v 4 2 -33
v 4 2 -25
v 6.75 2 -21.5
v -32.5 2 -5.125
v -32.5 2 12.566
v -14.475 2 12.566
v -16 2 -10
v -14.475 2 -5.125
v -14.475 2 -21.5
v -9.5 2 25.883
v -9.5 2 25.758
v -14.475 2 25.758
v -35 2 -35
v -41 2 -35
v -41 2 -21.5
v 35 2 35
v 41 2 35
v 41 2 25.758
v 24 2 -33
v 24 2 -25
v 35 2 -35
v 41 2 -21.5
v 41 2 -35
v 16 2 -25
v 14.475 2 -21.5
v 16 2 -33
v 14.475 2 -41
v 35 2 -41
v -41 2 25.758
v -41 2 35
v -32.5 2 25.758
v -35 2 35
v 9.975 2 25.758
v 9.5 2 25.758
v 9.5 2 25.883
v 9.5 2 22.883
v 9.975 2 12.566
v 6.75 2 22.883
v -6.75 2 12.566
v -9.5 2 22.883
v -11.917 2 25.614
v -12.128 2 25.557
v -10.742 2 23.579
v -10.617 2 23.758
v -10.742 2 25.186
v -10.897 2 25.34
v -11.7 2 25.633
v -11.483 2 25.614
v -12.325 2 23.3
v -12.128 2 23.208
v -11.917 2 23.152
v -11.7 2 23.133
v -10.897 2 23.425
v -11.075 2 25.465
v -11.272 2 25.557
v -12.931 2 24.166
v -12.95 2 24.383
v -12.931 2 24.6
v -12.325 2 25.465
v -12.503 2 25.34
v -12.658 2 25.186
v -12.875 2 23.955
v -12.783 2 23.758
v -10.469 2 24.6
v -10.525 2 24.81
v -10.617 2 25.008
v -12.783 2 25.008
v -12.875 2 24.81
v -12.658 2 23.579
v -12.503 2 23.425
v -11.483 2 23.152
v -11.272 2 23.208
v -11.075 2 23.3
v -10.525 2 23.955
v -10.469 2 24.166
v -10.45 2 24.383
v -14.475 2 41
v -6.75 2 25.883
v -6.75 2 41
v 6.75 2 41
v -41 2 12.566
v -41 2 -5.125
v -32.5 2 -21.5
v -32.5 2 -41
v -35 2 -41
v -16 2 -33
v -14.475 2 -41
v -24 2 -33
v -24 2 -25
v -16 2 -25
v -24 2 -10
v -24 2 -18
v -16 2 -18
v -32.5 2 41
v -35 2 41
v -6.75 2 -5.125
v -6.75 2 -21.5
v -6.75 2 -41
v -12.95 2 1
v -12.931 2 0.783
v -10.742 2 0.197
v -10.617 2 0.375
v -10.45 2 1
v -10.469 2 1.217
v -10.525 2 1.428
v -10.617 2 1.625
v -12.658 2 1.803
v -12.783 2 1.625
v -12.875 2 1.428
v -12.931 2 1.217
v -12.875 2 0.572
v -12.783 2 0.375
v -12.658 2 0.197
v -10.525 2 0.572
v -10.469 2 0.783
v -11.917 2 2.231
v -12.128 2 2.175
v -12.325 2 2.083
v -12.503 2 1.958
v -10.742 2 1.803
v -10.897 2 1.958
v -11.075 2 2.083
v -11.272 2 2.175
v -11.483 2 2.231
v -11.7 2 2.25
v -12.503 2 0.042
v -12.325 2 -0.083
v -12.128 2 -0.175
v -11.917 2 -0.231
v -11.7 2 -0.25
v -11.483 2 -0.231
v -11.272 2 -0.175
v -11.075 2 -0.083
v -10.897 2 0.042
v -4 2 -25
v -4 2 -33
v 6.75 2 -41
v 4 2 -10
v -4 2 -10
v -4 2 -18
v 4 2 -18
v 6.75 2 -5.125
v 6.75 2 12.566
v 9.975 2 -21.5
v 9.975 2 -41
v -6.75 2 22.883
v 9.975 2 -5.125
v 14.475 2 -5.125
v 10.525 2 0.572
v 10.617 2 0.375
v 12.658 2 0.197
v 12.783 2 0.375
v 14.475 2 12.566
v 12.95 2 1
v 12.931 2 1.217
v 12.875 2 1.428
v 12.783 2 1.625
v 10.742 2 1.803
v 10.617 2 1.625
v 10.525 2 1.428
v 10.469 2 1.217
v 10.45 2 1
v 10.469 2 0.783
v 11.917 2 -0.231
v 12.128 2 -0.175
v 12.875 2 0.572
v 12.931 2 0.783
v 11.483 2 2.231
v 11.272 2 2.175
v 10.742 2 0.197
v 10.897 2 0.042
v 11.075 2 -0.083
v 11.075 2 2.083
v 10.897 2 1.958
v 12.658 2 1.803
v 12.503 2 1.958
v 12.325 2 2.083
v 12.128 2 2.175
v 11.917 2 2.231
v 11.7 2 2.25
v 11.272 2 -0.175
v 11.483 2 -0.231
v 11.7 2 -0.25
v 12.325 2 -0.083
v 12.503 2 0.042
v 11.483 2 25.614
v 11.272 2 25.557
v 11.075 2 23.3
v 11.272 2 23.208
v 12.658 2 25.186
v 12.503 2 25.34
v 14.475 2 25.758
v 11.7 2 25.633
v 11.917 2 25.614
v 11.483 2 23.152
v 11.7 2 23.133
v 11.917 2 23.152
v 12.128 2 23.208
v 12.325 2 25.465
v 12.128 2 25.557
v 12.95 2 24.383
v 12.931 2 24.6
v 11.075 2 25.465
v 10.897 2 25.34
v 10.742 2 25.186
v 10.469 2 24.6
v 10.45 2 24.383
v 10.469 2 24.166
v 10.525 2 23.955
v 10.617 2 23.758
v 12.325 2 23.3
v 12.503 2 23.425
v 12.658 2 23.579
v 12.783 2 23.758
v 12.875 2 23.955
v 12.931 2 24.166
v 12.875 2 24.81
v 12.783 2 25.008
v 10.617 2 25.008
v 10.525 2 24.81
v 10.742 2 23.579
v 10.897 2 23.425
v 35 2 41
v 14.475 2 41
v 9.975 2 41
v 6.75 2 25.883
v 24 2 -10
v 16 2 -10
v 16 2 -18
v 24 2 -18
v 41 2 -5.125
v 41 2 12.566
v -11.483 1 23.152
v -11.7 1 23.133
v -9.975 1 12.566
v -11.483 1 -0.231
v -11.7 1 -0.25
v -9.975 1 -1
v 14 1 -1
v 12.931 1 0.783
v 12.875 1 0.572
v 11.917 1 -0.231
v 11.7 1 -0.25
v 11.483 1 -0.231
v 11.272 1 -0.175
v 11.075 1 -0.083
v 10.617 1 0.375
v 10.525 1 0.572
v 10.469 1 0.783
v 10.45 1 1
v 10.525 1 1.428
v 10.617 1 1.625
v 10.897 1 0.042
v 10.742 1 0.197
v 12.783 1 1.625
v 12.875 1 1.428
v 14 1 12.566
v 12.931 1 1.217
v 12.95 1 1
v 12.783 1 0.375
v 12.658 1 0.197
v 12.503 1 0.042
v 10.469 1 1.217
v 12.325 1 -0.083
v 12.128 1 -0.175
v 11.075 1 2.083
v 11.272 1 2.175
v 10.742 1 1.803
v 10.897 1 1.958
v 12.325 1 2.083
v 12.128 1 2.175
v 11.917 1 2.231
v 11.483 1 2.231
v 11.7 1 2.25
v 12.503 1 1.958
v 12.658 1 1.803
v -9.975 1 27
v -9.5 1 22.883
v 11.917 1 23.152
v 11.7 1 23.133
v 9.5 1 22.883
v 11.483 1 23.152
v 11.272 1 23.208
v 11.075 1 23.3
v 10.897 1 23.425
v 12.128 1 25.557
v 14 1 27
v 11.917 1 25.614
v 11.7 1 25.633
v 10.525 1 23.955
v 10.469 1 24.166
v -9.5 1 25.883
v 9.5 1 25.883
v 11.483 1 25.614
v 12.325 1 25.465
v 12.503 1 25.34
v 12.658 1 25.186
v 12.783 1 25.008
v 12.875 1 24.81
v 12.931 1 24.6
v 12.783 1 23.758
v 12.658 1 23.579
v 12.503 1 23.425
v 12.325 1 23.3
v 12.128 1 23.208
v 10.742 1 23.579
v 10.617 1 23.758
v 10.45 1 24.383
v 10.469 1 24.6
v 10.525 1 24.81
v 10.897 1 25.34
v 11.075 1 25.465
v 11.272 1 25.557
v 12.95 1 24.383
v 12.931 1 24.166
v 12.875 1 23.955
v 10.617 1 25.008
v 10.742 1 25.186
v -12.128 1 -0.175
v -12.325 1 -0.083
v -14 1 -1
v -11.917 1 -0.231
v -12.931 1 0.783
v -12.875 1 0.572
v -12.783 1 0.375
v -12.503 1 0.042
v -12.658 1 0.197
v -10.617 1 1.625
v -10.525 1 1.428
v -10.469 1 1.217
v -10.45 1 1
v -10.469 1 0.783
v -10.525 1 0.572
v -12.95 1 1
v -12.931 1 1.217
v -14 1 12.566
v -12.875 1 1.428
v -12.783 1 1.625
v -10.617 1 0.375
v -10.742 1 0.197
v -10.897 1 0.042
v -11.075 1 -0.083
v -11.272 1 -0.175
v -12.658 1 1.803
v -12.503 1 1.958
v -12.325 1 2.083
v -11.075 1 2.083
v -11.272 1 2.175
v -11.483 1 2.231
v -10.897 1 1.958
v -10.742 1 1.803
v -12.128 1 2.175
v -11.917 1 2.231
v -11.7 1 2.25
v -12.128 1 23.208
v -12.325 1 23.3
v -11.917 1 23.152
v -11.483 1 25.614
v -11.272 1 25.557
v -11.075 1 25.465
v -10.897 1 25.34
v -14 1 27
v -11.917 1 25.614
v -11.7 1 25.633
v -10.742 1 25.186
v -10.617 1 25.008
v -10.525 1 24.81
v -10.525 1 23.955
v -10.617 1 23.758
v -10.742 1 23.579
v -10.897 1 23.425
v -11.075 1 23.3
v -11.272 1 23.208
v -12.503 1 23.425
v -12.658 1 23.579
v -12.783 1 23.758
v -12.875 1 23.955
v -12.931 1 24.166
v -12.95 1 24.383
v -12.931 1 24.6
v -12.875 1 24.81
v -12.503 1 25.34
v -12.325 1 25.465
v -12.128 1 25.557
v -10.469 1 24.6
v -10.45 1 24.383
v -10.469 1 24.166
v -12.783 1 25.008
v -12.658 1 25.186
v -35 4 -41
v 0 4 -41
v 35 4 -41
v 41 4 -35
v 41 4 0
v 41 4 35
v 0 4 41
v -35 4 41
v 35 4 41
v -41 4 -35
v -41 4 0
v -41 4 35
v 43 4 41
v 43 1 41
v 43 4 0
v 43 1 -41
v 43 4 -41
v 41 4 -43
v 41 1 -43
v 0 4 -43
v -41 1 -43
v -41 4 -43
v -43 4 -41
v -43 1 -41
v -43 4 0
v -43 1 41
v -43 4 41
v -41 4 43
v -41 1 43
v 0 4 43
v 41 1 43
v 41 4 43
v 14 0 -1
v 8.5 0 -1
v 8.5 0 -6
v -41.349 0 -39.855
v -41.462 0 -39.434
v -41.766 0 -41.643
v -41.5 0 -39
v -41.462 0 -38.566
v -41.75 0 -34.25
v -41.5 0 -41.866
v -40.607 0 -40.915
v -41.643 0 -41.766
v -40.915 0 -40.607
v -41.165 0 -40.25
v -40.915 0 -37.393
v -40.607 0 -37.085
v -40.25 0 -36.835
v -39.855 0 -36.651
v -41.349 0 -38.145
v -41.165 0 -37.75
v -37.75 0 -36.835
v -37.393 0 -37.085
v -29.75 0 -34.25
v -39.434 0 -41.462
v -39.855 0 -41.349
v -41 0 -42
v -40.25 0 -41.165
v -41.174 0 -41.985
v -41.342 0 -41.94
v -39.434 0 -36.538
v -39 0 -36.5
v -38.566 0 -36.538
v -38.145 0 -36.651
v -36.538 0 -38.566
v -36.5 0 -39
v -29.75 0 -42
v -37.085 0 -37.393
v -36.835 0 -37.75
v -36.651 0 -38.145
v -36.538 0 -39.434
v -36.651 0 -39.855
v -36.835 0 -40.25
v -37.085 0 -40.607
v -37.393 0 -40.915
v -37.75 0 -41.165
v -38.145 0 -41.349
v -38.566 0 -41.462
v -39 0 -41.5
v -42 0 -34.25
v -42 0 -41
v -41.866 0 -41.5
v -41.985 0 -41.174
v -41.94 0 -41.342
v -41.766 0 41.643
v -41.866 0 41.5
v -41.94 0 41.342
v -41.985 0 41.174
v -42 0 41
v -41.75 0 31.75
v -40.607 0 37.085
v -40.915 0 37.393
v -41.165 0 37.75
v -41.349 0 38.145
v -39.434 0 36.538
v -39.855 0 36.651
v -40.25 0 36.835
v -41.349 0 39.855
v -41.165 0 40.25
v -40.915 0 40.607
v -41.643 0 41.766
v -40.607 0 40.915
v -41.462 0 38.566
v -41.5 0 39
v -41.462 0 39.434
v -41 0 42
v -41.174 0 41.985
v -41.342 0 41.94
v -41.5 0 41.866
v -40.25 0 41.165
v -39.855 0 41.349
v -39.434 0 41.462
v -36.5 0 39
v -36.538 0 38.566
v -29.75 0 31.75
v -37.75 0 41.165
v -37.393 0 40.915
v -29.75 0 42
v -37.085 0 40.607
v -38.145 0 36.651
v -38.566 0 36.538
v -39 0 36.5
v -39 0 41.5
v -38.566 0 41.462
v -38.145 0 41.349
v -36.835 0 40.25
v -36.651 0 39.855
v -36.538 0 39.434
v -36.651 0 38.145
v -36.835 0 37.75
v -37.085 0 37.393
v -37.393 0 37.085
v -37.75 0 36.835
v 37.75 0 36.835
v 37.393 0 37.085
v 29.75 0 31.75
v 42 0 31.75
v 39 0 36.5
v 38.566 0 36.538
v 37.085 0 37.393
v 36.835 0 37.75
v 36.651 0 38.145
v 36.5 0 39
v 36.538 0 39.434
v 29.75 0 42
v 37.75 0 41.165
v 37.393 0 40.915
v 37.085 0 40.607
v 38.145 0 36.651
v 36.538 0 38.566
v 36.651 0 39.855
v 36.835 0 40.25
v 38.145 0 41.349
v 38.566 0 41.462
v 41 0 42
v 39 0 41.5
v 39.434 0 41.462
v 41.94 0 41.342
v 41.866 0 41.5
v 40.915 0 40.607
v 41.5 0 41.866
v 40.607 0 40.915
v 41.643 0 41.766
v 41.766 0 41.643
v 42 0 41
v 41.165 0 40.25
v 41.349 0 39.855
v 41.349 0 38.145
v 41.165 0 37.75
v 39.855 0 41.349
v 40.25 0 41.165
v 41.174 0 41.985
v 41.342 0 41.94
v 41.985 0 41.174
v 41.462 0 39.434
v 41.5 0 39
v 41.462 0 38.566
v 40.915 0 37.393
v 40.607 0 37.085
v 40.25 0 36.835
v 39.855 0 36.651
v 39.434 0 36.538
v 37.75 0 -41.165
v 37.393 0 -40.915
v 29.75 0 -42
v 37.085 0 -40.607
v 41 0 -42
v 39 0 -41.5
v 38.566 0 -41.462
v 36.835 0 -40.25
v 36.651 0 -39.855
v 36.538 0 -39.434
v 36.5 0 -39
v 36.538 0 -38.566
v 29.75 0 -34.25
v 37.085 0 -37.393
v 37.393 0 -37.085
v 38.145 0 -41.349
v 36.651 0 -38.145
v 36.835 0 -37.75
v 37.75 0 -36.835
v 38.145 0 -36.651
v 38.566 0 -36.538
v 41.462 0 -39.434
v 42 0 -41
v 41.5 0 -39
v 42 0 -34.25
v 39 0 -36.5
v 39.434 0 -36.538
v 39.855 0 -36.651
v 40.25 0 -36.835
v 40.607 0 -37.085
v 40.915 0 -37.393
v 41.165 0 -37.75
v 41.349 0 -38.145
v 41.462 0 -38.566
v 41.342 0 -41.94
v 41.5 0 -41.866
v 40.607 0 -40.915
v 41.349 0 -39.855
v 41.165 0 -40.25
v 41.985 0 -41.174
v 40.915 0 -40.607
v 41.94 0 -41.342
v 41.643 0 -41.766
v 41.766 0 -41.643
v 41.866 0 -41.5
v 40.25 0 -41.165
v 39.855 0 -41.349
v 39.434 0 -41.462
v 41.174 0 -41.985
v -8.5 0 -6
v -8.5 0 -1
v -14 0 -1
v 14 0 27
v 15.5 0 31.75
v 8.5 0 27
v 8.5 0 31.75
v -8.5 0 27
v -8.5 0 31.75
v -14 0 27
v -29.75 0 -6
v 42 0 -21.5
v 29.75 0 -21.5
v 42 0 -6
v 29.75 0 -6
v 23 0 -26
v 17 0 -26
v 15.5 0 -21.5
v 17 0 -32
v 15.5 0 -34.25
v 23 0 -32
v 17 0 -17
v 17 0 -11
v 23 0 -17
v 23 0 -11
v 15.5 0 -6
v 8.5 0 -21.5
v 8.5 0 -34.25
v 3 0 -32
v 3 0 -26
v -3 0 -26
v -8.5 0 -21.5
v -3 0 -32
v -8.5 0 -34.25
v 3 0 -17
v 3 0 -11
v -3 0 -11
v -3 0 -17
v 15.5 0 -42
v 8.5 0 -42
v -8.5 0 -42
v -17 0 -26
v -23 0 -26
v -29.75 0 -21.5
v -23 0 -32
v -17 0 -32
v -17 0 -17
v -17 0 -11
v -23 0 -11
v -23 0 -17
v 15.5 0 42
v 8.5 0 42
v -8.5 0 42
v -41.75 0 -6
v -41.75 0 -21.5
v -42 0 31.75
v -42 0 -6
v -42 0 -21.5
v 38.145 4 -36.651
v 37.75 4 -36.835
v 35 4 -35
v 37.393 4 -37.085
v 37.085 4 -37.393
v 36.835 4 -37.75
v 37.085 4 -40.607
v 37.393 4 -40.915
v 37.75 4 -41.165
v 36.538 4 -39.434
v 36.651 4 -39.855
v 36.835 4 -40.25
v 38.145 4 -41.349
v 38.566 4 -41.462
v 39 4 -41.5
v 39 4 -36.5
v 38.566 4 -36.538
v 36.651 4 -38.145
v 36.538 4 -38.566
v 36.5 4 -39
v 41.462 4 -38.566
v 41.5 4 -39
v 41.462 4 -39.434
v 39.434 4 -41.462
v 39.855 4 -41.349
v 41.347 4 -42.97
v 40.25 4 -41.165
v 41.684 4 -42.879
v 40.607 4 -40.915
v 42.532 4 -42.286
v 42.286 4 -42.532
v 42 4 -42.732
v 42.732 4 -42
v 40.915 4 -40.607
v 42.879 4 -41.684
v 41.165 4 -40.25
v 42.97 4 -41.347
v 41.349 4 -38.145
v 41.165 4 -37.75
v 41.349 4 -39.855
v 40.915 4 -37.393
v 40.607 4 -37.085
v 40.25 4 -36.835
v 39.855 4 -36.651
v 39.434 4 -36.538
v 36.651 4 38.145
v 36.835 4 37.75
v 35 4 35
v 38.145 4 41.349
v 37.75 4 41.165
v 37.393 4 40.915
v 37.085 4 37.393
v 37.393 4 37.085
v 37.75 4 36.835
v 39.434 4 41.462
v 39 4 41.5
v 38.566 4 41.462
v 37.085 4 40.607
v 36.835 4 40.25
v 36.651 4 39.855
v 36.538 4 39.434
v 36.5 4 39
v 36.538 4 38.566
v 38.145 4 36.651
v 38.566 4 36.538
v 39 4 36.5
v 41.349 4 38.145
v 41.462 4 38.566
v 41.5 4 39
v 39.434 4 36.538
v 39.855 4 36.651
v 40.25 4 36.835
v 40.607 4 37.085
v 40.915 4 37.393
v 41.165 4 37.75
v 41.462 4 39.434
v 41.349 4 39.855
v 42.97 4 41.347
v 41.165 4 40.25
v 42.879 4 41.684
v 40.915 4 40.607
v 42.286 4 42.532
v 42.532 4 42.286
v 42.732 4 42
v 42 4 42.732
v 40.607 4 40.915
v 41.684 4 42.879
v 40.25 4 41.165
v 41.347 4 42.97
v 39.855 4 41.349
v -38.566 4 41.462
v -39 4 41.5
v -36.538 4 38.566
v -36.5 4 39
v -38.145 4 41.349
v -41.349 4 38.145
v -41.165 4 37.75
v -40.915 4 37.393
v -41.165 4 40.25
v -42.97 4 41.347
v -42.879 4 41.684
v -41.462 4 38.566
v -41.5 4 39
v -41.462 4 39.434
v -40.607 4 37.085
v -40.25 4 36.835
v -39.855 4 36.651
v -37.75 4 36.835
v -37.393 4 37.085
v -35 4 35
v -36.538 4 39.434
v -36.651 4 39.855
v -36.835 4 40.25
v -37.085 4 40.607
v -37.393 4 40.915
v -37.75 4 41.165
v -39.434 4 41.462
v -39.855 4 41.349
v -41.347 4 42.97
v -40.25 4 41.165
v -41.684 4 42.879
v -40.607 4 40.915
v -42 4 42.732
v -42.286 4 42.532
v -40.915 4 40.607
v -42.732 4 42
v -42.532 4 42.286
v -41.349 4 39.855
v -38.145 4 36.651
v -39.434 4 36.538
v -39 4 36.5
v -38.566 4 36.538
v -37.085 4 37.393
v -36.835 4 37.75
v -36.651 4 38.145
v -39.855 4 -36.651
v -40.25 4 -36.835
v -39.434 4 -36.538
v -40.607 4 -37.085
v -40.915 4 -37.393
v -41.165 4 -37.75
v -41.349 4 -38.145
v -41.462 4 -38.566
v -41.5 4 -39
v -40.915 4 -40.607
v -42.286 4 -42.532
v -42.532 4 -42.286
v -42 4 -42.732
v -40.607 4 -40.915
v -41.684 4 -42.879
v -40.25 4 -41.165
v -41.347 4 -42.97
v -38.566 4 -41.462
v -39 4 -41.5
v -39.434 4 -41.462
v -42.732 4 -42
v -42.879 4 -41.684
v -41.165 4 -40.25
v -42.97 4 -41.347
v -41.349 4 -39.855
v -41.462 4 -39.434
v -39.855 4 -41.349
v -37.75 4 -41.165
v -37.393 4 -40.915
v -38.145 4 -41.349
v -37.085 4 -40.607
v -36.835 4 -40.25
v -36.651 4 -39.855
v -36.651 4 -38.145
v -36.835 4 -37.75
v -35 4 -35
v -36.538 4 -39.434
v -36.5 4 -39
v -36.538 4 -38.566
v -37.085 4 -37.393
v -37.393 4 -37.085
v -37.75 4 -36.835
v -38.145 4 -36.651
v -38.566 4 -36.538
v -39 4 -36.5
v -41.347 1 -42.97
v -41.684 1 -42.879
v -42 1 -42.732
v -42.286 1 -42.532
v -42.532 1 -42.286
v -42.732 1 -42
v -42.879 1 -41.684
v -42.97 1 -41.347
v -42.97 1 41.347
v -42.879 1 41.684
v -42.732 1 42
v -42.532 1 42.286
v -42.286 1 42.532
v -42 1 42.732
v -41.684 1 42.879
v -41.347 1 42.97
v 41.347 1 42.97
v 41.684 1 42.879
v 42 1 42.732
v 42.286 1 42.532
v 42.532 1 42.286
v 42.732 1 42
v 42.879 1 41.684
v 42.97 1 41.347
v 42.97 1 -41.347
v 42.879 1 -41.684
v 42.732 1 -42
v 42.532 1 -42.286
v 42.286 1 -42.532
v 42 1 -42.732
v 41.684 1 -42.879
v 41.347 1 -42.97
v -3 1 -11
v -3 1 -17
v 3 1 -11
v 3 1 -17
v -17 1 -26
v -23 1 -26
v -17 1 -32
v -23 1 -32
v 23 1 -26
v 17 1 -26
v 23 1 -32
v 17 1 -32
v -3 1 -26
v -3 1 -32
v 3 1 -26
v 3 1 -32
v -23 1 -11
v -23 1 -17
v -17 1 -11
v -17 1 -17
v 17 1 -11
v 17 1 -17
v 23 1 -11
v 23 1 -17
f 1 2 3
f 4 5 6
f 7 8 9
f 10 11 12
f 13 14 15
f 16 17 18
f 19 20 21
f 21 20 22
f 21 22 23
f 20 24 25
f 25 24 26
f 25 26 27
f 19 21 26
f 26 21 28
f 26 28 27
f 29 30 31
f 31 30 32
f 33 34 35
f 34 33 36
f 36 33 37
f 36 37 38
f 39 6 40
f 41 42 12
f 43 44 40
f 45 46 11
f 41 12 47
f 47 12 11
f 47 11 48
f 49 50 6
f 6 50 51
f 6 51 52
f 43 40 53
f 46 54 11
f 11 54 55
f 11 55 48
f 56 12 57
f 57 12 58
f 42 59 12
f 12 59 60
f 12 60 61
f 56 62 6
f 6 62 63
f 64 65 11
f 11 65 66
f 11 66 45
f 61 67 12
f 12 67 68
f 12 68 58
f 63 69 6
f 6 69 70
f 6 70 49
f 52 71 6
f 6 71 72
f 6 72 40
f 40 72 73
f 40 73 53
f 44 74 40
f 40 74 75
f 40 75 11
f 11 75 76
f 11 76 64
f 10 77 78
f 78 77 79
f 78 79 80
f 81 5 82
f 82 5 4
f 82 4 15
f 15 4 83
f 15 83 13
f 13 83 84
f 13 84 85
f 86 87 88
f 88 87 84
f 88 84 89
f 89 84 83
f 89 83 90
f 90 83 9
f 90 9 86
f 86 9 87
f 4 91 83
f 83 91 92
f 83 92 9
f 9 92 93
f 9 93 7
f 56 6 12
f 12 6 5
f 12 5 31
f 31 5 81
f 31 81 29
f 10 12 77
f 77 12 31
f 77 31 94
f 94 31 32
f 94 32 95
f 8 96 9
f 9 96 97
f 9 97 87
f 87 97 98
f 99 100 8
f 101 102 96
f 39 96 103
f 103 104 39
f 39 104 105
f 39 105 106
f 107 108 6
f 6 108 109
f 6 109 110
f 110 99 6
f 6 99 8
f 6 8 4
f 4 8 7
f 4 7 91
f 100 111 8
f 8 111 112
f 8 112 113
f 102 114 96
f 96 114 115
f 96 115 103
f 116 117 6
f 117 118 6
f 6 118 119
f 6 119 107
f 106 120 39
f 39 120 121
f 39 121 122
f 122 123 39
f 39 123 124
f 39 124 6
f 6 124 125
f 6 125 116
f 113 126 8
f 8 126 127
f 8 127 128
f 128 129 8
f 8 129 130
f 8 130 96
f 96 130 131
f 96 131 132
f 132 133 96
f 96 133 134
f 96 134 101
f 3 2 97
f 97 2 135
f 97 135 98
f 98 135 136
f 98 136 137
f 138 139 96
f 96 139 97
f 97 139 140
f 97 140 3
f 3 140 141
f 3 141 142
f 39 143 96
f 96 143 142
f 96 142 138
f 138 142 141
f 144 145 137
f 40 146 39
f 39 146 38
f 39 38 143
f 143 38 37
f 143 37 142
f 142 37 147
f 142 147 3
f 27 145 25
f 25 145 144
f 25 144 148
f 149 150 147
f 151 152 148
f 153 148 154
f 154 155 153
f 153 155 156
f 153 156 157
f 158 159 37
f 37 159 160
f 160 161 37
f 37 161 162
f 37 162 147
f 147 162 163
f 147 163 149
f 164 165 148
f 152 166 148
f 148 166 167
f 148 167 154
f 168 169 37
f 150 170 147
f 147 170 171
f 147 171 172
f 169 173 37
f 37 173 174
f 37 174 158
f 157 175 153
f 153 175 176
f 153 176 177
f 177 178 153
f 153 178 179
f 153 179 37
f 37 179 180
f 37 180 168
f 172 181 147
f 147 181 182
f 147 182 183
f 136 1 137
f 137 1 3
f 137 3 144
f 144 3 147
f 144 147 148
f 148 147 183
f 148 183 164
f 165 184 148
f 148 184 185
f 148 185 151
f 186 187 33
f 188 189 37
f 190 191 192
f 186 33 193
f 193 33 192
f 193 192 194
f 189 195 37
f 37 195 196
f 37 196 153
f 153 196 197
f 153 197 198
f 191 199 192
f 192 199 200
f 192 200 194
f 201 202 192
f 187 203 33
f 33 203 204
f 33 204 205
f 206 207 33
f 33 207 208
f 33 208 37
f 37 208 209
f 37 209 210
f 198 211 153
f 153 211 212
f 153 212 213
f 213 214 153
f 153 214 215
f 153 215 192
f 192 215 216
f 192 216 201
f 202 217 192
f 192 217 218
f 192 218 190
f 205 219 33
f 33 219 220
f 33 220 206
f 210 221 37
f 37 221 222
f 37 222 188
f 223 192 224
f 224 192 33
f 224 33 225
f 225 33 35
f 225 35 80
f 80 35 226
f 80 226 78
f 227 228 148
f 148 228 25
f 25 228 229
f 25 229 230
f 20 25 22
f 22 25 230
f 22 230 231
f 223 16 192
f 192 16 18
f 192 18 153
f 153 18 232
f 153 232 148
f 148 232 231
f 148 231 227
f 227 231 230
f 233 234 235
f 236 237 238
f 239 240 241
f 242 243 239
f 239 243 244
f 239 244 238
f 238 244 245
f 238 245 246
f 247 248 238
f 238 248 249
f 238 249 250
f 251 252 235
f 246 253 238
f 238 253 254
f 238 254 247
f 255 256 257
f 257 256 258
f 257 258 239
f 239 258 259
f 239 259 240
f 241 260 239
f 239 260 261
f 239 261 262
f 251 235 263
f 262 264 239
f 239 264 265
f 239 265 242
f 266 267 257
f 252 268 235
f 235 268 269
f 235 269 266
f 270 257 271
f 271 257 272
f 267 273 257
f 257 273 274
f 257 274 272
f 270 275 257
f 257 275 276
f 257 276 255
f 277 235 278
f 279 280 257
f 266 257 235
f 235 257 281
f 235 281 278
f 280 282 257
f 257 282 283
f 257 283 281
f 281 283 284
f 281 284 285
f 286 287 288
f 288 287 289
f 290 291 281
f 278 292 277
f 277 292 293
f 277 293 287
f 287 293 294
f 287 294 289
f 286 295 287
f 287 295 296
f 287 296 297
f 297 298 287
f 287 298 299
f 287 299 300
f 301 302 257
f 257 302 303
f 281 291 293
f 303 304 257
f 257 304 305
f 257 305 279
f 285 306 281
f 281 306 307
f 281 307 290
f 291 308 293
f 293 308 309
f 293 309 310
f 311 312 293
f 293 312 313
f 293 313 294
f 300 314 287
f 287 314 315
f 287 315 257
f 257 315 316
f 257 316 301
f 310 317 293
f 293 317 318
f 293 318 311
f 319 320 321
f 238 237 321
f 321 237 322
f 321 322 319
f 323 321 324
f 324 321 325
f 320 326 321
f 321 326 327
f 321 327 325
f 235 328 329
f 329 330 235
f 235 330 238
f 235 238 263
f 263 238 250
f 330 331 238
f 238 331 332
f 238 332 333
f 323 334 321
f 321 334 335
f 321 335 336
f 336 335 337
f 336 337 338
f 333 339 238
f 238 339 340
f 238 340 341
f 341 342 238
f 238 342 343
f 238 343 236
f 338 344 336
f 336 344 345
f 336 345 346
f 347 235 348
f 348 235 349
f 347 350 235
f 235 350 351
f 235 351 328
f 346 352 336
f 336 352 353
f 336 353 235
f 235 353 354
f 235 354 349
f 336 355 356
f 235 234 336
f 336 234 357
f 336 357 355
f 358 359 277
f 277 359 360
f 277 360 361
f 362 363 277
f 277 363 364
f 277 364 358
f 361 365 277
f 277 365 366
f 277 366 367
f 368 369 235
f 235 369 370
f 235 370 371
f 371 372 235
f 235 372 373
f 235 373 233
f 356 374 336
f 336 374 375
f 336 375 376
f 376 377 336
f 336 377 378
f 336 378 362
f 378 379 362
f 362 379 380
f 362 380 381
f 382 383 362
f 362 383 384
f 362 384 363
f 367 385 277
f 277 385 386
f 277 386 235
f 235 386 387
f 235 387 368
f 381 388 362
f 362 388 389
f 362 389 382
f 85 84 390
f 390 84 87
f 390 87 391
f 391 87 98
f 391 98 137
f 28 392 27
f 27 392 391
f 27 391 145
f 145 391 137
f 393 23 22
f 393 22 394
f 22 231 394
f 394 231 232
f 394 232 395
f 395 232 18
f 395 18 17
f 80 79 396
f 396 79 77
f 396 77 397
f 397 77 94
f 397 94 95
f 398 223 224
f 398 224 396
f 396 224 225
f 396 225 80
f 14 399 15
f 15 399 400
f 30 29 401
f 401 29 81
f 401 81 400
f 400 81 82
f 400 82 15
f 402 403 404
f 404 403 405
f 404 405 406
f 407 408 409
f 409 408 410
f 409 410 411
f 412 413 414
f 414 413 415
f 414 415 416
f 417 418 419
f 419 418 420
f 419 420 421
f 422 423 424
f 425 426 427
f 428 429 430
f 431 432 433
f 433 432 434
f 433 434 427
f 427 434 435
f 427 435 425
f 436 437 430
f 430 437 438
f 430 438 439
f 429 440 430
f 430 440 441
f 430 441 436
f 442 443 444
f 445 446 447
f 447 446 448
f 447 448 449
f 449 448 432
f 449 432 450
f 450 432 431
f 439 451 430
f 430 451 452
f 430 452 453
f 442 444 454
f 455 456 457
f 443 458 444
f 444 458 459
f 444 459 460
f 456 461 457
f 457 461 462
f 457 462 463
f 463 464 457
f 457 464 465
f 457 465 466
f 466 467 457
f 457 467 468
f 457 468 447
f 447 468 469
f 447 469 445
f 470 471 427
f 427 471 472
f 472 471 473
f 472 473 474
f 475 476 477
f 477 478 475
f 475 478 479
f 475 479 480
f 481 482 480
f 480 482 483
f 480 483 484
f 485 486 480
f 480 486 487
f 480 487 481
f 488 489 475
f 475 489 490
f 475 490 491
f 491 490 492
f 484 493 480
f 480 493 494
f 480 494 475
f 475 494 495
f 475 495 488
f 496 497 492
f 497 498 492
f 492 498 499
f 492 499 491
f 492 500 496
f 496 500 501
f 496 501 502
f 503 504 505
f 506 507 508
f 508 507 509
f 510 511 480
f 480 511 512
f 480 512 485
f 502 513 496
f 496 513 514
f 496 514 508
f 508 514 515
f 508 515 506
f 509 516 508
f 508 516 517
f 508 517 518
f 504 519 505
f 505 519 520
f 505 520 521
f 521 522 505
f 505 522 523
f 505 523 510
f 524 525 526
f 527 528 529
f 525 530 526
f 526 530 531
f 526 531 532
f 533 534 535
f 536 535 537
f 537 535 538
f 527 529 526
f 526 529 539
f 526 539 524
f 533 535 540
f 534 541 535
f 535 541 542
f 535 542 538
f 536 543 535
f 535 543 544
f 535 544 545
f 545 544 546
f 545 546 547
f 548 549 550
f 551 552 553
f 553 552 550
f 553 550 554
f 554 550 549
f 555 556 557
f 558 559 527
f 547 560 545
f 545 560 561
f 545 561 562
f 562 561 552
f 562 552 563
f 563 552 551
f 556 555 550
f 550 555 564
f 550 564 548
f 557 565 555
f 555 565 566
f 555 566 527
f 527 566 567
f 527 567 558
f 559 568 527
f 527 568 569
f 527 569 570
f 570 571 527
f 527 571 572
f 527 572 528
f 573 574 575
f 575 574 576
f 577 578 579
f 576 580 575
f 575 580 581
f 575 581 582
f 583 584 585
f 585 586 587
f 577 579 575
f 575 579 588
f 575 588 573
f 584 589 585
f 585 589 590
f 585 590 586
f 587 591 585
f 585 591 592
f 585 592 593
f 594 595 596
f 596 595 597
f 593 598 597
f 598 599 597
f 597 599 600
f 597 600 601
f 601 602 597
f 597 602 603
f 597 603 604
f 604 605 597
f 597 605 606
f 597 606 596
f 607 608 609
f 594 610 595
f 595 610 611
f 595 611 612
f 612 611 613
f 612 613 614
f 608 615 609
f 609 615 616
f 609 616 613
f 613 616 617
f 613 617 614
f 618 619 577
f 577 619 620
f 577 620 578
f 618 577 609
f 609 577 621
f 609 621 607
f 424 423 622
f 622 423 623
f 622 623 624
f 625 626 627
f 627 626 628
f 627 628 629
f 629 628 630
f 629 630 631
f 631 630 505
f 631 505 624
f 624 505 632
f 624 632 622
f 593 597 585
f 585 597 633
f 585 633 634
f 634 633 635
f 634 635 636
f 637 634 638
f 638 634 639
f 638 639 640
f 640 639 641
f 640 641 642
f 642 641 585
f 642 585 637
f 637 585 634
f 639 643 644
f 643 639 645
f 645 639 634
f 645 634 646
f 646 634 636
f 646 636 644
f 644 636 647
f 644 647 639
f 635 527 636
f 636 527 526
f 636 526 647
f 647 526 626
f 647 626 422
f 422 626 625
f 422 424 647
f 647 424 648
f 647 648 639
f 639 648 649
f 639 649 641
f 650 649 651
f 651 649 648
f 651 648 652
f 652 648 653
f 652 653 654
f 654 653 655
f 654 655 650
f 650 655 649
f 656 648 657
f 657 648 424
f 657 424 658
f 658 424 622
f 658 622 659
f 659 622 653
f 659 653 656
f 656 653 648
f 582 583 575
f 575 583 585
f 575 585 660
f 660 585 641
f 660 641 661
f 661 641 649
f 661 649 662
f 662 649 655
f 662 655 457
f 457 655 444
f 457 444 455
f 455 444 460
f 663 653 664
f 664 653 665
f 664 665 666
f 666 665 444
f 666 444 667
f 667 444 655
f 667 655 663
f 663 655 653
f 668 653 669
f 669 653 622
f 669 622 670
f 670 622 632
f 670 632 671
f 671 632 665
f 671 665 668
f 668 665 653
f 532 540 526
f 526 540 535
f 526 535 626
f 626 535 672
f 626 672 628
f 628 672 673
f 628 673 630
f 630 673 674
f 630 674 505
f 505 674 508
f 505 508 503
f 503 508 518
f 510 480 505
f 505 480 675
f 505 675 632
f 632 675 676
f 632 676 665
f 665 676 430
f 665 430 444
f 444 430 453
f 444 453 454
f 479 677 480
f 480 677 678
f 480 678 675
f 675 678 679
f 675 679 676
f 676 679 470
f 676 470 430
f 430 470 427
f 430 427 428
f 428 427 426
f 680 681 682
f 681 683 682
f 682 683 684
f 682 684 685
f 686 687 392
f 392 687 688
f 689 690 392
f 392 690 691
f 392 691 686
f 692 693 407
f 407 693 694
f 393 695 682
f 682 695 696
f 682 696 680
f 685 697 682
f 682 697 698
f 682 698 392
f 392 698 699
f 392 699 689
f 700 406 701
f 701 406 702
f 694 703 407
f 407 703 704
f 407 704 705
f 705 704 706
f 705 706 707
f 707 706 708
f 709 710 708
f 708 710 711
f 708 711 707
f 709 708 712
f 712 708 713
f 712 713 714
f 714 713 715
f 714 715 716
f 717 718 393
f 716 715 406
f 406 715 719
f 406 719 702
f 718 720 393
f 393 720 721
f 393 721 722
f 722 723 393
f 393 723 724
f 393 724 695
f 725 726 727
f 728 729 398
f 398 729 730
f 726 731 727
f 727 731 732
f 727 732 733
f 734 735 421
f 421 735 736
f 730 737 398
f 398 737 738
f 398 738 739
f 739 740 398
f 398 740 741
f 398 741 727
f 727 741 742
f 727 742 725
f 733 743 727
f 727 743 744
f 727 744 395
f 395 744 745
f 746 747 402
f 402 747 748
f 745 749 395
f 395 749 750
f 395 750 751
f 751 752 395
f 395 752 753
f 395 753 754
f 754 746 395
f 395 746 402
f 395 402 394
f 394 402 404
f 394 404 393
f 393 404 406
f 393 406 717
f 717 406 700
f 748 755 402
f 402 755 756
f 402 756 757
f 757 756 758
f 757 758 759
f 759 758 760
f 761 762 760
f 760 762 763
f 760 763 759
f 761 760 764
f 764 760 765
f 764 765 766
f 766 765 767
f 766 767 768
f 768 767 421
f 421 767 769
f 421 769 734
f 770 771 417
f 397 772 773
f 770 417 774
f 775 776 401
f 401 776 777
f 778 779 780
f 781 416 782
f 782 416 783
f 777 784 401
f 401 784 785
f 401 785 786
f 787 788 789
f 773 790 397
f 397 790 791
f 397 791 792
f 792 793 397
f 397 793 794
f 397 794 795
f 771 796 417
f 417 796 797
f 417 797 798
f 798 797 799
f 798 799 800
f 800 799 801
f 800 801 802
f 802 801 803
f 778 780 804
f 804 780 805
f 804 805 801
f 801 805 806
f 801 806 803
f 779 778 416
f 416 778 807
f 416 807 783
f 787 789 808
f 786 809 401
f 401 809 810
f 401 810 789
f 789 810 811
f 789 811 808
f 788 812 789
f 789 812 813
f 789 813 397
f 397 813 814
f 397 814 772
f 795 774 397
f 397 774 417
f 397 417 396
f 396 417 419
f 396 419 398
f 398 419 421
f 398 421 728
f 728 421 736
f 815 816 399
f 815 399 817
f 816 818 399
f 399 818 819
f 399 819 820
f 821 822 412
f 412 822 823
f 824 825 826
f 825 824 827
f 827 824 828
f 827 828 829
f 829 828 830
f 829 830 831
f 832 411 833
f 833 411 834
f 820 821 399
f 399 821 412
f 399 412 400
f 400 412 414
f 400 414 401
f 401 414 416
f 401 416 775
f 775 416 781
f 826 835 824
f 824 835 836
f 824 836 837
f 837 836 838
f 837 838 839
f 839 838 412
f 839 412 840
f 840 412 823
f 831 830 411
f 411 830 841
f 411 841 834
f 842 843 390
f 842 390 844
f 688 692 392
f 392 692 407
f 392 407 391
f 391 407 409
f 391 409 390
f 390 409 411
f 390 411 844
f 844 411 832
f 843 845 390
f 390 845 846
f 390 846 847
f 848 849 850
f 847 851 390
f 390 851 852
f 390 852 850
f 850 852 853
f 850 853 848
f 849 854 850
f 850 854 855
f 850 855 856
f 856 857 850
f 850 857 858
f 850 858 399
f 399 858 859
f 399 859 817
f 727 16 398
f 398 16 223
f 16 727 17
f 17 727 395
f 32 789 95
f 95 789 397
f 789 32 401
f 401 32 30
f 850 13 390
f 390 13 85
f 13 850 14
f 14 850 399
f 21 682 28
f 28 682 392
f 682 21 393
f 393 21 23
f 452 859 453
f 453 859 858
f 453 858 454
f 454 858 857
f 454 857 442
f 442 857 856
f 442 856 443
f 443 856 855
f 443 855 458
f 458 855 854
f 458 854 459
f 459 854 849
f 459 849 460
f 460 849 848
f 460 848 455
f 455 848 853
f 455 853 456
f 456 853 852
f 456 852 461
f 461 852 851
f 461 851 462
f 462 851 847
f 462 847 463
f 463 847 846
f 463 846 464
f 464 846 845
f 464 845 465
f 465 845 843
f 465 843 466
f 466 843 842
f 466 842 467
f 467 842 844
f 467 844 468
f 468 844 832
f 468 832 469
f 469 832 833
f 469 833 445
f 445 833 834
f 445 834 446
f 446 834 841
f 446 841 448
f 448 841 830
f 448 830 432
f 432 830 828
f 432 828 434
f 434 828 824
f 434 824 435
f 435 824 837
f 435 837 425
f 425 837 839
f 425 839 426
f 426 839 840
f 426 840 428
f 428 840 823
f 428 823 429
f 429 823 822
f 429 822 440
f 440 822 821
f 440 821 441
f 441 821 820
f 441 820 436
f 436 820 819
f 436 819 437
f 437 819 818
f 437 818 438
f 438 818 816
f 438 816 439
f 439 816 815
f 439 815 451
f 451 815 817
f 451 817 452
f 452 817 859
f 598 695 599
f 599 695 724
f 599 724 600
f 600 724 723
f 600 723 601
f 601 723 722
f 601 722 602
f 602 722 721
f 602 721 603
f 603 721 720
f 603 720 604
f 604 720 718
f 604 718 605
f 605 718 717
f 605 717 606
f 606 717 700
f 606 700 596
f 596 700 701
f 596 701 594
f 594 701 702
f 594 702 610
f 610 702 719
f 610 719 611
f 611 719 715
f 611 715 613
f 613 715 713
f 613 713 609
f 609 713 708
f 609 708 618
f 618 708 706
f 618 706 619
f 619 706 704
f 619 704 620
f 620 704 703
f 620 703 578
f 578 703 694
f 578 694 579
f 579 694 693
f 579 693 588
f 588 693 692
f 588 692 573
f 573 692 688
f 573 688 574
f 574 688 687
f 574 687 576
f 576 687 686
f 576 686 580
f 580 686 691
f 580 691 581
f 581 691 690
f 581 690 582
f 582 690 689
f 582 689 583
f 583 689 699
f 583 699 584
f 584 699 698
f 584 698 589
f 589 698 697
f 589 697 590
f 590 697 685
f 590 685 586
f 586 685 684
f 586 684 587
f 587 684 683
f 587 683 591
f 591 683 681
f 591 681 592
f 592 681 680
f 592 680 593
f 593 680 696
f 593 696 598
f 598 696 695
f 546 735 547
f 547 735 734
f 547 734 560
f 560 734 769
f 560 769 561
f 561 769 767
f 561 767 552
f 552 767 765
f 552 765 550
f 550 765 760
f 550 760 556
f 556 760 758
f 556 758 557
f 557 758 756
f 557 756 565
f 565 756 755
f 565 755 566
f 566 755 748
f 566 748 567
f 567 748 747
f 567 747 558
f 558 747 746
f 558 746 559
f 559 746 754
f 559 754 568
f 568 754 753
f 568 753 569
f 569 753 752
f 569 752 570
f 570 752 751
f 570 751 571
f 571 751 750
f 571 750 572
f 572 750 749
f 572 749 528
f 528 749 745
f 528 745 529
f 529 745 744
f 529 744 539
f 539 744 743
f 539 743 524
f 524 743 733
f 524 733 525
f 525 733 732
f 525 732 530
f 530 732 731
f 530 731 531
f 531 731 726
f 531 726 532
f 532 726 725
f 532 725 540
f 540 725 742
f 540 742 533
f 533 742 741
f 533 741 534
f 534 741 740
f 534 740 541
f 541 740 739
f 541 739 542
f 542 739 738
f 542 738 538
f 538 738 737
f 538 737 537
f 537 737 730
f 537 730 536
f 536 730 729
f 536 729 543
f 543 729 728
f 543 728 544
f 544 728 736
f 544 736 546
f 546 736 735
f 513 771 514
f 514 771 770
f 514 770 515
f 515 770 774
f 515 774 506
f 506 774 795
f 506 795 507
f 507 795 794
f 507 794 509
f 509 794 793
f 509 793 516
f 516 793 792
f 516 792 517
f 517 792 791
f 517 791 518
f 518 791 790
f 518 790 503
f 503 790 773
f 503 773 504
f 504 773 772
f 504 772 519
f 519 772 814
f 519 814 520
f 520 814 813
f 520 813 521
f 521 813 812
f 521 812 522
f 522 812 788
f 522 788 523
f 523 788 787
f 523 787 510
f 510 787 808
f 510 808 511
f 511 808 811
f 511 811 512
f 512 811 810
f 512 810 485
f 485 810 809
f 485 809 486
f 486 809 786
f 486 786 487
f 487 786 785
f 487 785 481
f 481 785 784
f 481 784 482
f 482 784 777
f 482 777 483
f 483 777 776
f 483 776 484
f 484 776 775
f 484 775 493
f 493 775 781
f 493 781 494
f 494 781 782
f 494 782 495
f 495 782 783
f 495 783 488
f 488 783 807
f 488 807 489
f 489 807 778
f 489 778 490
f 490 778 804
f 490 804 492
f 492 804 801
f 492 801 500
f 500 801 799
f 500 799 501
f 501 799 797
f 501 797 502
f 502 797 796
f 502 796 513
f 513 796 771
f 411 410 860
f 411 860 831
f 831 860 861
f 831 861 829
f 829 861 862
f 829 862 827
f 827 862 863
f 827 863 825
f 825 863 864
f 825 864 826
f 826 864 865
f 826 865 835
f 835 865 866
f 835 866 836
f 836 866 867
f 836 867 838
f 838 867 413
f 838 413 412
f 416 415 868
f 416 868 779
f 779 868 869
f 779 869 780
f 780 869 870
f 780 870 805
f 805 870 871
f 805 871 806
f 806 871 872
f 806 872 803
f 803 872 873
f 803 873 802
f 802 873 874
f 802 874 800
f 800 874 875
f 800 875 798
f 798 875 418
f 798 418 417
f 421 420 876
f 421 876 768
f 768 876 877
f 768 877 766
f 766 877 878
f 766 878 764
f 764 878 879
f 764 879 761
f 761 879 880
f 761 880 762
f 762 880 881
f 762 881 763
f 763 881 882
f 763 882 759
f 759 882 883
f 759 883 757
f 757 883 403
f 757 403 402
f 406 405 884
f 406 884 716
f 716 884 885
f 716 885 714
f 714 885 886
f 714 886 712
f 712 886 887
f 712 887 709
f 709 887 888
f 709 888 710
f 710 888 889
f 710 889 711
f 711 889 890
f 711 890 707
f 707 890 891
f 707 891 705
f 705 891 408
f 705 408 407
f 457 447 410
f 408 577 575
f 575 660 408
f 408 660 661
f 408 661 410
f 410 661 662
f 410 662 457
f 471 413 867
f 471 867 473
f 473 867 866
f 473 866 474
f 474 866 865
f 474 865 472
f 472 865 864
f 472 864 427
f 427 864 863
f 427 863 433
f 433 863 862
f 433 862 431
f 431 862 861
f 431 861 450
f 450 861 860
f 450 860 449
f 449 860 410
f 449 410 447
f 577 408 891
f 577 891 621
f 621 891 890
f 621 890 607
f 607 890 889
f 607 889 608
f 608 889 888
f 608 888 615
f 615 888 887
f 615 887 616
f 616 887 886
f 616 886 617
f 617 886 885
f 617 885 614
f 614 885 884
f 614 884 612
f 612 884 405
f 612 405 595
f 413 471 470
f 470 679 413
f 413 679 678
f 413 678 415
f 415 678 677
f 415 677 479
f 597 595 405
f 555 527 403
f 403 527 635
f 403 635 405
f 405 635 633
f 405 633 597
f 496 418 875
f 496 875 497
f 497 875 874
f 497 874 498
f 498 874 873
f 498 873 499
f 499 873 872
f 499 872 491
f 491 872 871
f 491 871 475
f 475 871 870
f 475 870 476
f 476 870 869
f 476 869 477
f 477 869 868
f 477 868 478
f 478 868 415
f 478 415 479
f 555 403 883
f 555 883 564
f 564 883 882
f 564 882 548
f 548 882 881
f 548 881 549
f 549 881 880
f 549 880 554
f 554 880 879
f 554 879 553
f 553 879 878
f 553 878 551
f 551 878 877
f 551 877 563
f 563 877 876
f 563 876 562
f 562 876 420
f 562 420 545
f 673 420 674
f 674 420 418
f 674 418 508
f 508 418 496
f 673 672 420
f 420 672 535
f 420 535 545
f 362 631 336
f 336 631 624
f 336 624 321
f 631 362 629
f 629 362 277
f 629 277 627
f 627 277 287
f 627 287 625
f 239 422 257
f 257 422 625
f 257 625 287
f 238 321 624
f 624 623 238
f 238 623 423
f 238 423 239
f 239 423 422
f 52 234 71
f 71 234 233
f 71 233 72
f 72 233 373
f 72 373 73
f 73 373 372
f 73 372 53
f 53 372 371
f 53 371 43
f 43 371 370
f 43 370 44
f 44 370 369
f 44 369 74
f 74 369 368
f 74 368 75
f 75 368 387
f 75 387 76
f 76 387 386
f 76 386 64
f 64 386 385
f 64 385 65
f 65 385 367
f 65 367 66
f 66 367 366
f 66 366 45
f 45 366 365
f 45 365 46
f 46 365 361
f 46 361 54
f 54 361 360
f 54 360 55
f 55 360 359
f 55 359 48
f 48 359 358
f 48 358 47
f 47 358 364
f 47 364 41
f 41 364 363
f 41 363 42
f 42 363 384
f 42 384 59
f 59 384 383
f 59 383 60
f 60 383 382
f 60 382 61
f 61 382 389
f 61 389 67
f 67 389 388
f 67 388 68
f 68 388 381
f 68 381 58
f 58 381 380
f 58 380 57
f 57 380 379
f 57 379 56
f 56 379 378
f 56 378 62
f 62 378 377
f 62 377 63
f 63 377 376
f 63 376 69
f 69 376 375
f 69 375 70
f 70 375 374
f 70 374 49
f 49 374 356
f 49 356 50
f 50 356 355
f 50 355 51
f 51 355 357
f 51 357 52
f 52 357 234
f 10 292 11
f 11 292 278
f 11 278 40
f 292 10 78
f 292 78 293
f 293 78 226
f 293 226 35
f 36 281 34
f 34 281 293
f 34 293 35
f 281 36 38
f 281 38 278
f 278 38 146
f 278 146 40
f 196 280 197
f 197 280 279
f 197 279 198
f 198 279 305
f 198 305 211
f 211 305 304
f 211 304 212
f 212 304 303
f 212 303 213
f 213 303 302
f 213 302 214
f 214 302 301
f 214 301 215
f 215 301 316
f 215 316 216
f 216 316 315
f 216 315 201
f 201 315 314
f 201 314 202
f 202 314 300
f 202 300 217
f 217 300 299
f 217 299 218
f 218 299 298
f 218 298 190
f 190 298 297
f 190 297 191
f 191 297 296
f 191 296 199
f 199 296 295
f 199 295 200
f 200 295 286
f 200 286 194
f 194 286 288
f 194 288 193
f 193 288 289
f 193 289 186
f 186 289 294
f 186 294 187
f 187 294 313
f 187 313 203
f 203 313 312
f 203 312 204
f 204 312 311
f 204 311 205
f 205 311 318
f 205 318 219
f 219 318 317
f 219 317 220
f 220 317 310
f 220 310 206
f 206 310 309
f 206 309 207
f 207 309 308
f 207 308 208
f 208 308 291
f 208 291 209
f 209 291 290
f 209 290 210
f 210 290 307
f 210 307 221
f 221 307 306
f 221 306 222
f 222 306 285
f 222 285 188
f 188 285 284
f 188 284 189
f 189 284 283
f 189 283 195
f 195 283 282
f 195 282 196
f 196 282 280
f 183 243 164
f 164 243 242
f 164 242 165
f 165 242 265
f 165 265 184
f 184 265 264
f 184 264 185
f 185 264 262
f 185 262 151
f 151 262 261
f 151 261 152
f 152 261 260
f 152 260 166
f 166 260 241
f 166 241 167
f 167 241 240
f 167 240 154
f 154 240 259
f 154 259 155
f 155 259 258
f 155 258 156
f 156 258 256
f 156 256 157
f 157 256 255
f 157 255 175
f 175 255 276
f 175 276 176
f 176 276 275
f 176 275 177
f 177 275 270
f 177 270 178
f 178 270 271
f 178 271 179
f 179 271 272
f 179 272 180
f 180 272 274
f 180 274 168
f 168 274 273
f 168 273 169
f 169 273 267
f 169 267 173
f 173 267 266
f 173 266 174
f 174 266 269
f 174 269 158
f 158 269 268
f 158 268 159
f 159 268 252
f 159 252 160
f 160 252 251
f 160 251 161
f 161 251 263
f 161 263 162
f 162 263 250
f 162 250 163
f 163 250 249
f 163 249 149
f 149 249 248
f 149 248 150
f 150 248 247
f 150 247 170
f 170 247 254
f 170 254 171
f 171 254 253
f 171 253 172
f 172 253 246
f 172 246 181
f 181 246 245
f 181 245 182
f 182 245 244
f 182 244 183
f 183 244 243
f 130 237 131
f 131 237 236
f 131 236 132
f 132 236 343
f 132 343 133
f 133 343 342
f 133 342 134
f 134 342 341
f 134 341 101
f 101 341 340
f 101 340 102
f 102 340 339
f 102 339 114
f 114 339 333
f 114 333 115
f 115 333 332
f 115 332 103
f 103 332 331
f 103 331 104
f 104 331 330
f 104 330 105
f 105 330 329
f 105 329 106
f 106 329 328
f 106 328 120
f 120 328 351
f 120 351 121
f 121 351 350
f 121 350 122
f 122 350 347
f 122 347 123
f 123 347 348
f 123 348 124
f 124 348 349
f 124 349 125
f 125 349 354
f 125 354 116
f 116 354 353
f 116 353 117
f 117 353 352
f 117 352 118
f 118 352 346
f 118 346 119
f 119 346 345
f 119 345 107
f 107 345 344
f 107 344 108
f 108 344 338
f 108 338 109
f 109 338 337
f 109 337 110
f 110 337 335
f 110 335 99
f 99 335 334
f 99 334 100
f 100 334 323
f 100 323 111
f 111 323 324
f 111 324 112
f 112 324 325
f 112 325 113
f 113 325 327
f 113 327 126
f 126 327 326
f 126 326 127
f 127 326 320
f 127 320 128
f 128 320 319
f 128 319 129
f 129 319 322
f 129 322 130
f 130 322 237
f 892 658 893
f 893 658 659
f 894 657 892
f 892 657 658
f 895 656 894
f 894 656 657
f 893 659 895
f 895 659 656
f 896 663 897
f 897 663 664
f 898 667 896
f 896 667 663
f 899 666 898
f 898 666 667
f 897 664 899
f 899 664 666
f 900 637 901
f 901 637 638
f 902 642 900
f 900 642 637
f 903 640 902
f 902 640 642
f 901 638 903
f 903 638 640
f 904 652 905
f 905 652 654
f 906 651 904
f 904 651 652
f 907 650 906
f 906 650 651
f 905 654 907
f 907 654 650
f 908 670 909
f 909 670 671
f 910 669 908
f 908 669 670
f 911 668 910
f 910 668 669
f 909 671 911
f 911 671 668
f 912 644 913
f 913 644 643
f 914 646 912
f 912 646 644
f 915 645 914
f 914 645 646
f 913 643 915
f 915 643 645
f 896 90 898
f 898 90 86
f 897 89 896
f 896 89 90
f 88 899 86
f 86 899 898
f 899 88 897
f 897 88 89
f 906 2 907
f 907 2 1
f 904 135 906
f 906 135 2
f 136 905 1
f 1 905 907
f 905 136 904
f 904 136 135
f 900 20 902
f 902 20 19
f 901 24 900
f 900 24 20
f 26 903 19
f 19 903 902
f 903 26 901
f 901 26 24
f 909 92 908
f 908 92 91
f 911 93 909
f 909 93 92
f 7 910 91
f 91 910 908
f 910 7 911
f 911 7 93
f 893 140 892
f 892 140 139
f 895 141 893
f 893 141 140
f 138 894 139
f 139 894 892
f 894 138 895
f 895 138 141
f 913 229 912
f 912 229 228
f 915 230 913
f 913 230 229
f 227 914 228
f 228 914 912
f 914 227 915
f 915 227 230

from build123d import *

# Parameters (mm, degrees)
SKETCH_2_W           = 86
SKETCH_2_H           = 86
EXTRUDE_1_DEPTH      = 2
SKETCH_3_W           = 86
SKETCH_3_H           = 86
SKETCH_3_W_2         = 82
SKETCH_3_H_2         = 82
EXTRUDE_2_DEPTH      = 2
SKETCH_4_W           = 6
SKETCH_4_H           = 2
EXTRUDE_3_DEPTH      = 6
SKETCH_5_W           = 6
SKETCH_5_H           = 2
EXTRUDE_4_DEPTH      = 6
SKETCH_6_R           = 2.5
CUT_EXTRUDE_1_DEPTH  = 61.942595941
FILLET_1_R           = 2
CHAMFER_1_SIZE       = 1
SKETCH_7_W           = 28
SKETCH_7_H           = 28
CUT_EXTRUDE_2_DEPTH  = 1
SKETCH_8_R           = 1.25
SKETCH_8_W           = 19
SKETCH_8_H           = 3
CUT_EXTRUDE_10_DEPTH = 61.88513776
SKETCH_9_W           = 6
SKETCH_9_H           = 6
CUT_EXTRUDE_11_DEPTH = 61.942595941
CHAMFER_2_SIZE       = 1
CHAMFER_3_SIZE       = 1


with BuildPart() as part:
    # 草图2 → 凸台-拉伸1 (new body)
    with BuildSketch(Plane(origin=(0, 0, 0), x_dir=(1, 0, 0), z_dir=(0, 1, 0))):
        Rectangle(SKETCH_2_W, SKETCH_2_H)
    extrude(amount=EXTRUDE_1_DEPTH)

    # 草图3 → 凸台-拉伸2 (add)
    with BuildSketch(Plane(origin=(0, 2, 0), x_dir=(1, 0, 0), z_dir=(0, 1, 0))):
        Rectangle(SKETCH_3_W, SKETCH_3_H)
        Rectangle(SKETCH_3_W_2, SKETCH_3_H_2, mode=Mode.SUBTRACT)
    extrude(amount=EXTRUDE_2_DEPTH)

    # 草图4 → 凸台-拉伸3 (add)
    with BuildSketch(Plane(origin=(0, 0, 41), x_dir=(-1, 0, 0), z_dir=(0, 0, -1))):
        with Locations((-38, 3)):
            Rectangle(SKETCH_4_W, SKETCH_4_H)
        with Locations((38, 3)):
            Rectangle(SKETCH_4_W, SKETCH_4_H)
    extrude(amount=EXTRUDE_3_DEPTH)

    # 草图5 → 凸台-拉伸4 (add)
    with BuildSketch(Plane.XY.offset(-41)):
        with Locations((-38, 3)):
            Rectangle(SKETCH_5_W, SKETCH_5_H)
        with Locations((38, 3)):
            Rectangle(SKETCH_5_W, SKETCH_5_H)
    extrude(amount=EXTRUDE_4_DEPTH)

    # 草图6 → 切除-拉伸1 (cut, through all)
    with BuildSketch(Plane(origin=(0, 4, 0), x_dir=(1, 0, 0), z_dir=(0, 1, 0))):
        with Locations(Location((-39, 39, 0), (0, 0, 270))):
            Circle(SKETCH_6_R)
        with Locations(Location((39, 39, 0), (0, 0, 90))):
            Circle(SKETCH_6_R)
        with Locations(Location((39, -39, 0), (0, 0, 270))):
            Circle(SKETCH_6_R)
        with Locations(Location((-39, -39, 0), (0, 0, 90))):
            Circle(SKETCH_6_R)
    extrude(amount=-CUT_EXTRUDE_1_DEPTH, mode=Mode.SUBTRACT)

    # 圆角1
    fillet_1_edges = [part.edges().sort_by_distance(p)[0] for p in [
        (43, 2, 43),
        (-43, 2, 43),
        (-43, 2, -43),
        (43, 2, -43),
    ]]
    fillet(fillet_1_edges, radius=FILLET_1_R)

    # 倒角1
    chamfer_1_edges = [part.edges().sort_by_distance(p)[0] for p in [
        (-43, 0, 0),
        (43, 0, 0),
        (0, 0, 43),
        (0, 0, -43),
        (42.414213562, 0, -42.414213562),
        (42.414213562, 0, 42.414213562),
        (-42.414213562, 0, 42.414213562),
        (-42.414213562, 0, -42.414213562),
    ]]
    chamfer(chamfer_1_edges, length=CHAMFER_1_SIZE)

    # 草图7 → 切除-拉伸2 (cut)
    with BuildSketch(Plane.XZ):
        with Locations((0, 13)):
            Rectangle(SKETCH_7_W, SKETCH_7_H)
    extrude(amount=-CUT_EXTRUDE_2_DEPTH, mode=Mode.SUBTRACT)

    # 草图8 → 切除-拉伸10 (cut, through all)
    with BuildSketch(Plane.XZ.offset(-1)):
        with Locations(Location((-11.7, 24.382645166, 0), (0, 0, 270))):
            Circle(SKETCH_8_R)
        with Locations(Location((11.7, 24.382645166, 0), (0, 0, 270))):
            Circle(SKETCH_8_R)
        with Locations(Location((-11.7, 1, 0), (0, 0, 270))):
            Circle(SKETCH_8_R)
        with Locations(Location((11.7, 1, 0), (0, 0, 270))):
            Circle(SKETCH_8_R)
        with Locations((0, 24.382645166)):
            Rectangle(SKETCH_8_W, SKETCH_8_H)
    extrude(amount=-CUT_EXTRUDE_10_DEPTH, mode=Mode.SUBTRACT)

    # 草图9 → 切除-拉伸11 (cut, through all)
    with BuildSketch(Plane.XZ):
        with Locations((0, -14)):
            Rectangle(SKETCH_9_W, SKETCH_9_H)
        with Locations((-20, -14)):
            Rectangle(SKETCH_9_W, SKETCH_9_H)
        with Locations((20, -14)):
            Rectangle(SKETCH_9_W, SKETCH_9_H)
        with Locations((-20, -29)):
            Rectangle(SKETCH_9_W, SKETCH_9_H)
        with Locations((0, -29)):
            Rectangle(SKETCH_9_W, SKETCH_9_H)
        with Locations((20, -29)):
            Rectangle(SKETCH_9_W, SKETCH_9_H)
    extrude(amount=-CUT_EXTRUDE_11_DEPTH, mode=Mode.SUBTRACT)

    # 倒角2
    chamfer_2_edges = [part.edges().sort_by_distance(p)[0] for p in [
        (-3, 2, -29),
        (0, 2, -26),
        (3, 2, -29),
        (0, 2, -32),
        (20, 2, -26),
        (23, 2, -29),
        (20, 2, -32),
        (17, 2, -29),
        (-20, 2, -26),
        (-17, 2, -29),
        (-20, 2, -32),
        (-23, 2, -29),
    ]]
    chamfer(chamfer_2_edges, length=CHAMFER_2_SIZE)

    # 倒角3
    chamfer_3_edges = [part.edges().sort_by_distance(p)[0] for p in [
        (17, 2, -14),
        (20, 2, -11),
        (23, 2, -14),
        (20, 2, -17),
        (-23, 2, -14),
        (-20, 2, -11),
        (-17, 2, -14),
        (-20, 2, -17),
        (-3, 2, -14),
        (0, 2, -11),
        (3, 2, -14),
        (0, 2, -17),
    ]]
    chamfer(chamfer_3_edges, length=CHAMFER_3_SIZE)


solid = part.part
